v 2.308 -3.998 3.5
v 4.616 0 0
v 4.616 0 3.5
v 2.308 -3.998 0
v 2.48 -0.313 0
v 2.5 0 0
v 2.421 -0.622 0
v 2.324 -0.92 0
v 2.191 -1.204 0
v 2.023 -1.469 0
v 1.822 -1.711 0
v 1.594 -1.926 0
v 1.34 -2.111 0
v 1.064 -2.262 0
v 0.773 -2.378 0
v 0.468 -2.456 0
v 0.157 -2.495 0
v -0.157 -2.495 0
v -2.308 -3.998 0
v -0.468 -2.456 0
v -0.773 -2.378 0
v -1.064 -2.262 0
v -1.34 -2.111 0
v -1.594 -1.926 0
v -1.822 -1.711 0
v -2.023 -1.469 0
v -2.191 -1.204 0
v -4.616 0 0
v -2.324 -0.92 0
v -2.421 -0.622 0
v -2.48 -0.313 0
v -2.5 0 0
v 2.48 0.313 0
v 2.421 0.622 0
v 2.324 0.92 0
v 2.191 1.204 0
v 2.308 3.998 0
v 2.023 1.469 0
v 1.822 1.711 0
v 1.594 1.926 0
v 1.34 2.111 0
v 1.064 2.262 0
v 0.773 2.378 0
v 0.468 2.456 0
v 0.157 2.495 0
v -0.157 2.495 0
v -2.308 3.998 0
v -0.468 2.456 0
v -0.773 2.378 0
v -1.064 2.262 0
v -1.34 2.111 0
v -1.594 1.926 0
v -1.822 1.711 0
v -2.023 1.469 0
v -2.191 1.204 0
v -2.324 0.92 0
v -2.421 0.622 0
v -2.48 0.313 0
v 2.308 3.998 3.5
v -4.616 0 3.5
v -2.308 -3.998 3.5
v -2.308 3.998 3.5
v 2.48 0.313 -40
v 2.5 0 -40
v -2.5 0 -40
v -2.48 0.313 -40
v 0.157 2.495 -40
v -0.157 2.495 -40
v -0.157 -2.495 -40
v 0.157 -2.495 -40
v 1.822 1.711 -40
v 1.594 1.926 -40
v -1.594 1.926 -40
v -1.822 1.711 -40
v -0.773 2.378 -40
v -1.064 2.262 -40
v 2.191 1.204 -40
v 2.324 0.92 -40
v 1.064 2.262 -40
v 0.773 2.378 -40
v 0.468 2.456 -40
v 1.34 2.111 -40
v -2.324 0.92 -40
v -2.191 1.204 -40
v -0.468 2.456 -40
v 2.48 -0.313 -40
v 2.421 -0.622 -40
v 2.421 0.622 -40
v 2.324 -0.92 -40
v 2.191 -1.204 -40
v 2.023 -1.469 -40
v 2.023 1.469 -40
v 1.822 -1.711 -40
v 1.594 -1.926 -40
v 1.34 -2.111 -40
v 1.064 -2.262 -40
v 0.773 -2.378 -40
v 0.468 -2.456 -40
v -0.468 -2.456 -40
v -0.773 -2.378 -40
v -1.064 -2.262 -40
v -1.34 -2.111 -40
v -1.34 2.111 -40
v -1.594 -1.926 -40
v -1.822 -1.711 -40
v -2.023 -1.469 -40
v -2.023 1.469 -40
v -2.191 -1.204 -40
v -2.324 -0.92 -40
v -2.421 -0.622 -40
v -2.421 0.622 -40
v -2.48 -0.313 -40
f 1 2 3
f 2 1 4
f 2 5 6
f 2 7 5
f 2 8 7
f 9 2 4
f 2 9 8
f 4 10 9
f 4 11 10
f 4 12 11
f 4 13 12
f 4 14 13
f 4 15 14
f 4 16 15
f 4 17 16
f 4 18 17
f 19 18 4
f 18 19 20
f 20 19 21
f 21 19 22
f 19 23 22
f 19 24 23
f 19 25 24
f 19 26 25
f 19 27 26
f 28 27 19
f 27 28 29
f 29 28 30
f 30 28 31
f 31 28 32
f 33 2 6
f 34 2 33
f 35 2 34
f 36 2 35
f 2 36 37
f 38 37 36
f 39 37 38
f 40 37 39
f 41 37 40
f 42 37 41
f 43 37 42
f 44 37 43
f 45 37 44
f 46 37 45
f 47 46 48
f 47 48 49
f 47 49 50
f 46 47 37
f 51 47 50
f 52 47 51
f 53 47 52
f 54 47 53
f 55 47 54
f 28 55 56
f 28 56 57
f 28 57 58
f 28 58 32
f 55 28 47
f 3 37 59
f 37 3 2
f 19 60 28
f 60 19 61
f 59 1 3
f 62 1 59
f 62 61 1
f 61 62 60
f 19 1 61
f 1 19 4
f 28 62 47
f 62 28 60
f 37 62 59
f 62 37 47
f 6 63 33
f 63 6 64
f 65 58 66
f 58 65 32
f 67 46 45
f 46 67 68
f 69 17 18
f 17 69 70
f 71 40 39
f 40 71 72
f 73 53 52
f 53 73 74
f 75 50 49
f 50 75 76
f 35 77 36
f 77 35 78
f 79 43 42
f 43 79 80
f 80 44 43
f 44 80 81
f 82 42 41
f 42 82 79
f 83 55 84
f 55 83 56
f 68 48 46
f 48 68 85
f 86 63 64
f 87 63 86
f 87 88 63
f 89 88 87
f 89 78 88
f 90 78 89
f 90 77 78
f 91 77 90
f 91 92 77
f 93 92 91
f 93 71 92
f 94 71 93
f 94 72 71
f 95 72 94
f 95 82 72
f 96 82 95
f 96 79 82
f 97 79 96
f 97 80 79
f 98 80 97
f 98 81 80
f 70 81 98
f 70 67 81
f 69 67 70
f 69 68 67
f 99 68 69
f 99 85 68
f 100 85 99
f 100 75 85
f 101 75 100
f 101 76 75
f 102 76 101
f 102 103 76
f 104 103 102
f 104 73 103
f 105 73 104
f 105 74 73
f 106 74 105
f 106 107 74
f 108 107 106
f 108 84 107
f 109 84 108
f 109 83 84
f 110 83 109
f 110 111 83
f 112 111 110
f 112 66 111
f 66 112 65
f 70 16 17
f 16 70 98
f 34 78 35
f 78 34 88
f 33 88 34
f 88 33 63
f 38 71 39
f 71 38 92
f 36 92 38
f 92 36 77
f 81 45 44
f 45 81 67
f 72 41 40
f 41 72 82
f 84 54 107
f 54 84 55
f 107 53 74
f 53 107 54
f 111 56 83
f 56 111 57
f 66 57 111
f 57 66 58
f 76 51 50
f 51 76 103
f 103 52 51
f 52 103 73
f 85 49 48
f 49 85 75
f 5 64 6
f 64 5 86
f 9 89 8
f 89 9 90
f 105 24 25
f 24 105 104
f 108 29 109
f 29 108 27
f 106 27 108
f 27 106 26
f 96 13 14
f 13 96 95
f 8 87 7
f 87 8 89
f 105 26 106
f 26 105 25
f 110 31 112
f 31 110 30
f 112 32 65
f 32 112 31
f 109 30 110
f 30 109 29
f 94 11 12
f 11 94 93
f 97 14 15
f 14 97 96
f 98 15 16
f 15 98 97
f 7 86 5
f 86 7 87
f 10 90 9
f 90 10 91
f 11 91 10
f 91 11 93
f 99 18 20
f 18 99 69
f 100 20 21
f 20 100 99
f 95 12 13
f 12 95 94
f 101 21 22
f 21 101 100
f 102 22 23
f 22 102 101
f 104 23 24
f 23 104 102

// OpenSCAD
$fn = 50;


difference() {
	union() {
		translate(v = [0, 0, 0]) {
			rotate(a = [0, 0, 0]) {
				translate(v = [0, 0, 0]) {
					rotate(a = [0, 0, 0]) {
						linear_extrude(height = 3.5000000000) {
							polygon(points = [[4.6160000000, 0.0000000000], [2.3080000000, 3.9975732639], [-2.3080000000, 3.9975732639], [-4.6160000000, 0.0000000000], [-2.3080000000, -3.9975732639], [2.3080000000, -3.9975732639]]);
						}
					}
				}
			}
		}
		translate(v = [0, 0, -40]) {
			rotate(a = [0, 0, 0]) {
				cylinder(h = 40, r = 2.5000000000);
			}
		}
	}
	union();
}
